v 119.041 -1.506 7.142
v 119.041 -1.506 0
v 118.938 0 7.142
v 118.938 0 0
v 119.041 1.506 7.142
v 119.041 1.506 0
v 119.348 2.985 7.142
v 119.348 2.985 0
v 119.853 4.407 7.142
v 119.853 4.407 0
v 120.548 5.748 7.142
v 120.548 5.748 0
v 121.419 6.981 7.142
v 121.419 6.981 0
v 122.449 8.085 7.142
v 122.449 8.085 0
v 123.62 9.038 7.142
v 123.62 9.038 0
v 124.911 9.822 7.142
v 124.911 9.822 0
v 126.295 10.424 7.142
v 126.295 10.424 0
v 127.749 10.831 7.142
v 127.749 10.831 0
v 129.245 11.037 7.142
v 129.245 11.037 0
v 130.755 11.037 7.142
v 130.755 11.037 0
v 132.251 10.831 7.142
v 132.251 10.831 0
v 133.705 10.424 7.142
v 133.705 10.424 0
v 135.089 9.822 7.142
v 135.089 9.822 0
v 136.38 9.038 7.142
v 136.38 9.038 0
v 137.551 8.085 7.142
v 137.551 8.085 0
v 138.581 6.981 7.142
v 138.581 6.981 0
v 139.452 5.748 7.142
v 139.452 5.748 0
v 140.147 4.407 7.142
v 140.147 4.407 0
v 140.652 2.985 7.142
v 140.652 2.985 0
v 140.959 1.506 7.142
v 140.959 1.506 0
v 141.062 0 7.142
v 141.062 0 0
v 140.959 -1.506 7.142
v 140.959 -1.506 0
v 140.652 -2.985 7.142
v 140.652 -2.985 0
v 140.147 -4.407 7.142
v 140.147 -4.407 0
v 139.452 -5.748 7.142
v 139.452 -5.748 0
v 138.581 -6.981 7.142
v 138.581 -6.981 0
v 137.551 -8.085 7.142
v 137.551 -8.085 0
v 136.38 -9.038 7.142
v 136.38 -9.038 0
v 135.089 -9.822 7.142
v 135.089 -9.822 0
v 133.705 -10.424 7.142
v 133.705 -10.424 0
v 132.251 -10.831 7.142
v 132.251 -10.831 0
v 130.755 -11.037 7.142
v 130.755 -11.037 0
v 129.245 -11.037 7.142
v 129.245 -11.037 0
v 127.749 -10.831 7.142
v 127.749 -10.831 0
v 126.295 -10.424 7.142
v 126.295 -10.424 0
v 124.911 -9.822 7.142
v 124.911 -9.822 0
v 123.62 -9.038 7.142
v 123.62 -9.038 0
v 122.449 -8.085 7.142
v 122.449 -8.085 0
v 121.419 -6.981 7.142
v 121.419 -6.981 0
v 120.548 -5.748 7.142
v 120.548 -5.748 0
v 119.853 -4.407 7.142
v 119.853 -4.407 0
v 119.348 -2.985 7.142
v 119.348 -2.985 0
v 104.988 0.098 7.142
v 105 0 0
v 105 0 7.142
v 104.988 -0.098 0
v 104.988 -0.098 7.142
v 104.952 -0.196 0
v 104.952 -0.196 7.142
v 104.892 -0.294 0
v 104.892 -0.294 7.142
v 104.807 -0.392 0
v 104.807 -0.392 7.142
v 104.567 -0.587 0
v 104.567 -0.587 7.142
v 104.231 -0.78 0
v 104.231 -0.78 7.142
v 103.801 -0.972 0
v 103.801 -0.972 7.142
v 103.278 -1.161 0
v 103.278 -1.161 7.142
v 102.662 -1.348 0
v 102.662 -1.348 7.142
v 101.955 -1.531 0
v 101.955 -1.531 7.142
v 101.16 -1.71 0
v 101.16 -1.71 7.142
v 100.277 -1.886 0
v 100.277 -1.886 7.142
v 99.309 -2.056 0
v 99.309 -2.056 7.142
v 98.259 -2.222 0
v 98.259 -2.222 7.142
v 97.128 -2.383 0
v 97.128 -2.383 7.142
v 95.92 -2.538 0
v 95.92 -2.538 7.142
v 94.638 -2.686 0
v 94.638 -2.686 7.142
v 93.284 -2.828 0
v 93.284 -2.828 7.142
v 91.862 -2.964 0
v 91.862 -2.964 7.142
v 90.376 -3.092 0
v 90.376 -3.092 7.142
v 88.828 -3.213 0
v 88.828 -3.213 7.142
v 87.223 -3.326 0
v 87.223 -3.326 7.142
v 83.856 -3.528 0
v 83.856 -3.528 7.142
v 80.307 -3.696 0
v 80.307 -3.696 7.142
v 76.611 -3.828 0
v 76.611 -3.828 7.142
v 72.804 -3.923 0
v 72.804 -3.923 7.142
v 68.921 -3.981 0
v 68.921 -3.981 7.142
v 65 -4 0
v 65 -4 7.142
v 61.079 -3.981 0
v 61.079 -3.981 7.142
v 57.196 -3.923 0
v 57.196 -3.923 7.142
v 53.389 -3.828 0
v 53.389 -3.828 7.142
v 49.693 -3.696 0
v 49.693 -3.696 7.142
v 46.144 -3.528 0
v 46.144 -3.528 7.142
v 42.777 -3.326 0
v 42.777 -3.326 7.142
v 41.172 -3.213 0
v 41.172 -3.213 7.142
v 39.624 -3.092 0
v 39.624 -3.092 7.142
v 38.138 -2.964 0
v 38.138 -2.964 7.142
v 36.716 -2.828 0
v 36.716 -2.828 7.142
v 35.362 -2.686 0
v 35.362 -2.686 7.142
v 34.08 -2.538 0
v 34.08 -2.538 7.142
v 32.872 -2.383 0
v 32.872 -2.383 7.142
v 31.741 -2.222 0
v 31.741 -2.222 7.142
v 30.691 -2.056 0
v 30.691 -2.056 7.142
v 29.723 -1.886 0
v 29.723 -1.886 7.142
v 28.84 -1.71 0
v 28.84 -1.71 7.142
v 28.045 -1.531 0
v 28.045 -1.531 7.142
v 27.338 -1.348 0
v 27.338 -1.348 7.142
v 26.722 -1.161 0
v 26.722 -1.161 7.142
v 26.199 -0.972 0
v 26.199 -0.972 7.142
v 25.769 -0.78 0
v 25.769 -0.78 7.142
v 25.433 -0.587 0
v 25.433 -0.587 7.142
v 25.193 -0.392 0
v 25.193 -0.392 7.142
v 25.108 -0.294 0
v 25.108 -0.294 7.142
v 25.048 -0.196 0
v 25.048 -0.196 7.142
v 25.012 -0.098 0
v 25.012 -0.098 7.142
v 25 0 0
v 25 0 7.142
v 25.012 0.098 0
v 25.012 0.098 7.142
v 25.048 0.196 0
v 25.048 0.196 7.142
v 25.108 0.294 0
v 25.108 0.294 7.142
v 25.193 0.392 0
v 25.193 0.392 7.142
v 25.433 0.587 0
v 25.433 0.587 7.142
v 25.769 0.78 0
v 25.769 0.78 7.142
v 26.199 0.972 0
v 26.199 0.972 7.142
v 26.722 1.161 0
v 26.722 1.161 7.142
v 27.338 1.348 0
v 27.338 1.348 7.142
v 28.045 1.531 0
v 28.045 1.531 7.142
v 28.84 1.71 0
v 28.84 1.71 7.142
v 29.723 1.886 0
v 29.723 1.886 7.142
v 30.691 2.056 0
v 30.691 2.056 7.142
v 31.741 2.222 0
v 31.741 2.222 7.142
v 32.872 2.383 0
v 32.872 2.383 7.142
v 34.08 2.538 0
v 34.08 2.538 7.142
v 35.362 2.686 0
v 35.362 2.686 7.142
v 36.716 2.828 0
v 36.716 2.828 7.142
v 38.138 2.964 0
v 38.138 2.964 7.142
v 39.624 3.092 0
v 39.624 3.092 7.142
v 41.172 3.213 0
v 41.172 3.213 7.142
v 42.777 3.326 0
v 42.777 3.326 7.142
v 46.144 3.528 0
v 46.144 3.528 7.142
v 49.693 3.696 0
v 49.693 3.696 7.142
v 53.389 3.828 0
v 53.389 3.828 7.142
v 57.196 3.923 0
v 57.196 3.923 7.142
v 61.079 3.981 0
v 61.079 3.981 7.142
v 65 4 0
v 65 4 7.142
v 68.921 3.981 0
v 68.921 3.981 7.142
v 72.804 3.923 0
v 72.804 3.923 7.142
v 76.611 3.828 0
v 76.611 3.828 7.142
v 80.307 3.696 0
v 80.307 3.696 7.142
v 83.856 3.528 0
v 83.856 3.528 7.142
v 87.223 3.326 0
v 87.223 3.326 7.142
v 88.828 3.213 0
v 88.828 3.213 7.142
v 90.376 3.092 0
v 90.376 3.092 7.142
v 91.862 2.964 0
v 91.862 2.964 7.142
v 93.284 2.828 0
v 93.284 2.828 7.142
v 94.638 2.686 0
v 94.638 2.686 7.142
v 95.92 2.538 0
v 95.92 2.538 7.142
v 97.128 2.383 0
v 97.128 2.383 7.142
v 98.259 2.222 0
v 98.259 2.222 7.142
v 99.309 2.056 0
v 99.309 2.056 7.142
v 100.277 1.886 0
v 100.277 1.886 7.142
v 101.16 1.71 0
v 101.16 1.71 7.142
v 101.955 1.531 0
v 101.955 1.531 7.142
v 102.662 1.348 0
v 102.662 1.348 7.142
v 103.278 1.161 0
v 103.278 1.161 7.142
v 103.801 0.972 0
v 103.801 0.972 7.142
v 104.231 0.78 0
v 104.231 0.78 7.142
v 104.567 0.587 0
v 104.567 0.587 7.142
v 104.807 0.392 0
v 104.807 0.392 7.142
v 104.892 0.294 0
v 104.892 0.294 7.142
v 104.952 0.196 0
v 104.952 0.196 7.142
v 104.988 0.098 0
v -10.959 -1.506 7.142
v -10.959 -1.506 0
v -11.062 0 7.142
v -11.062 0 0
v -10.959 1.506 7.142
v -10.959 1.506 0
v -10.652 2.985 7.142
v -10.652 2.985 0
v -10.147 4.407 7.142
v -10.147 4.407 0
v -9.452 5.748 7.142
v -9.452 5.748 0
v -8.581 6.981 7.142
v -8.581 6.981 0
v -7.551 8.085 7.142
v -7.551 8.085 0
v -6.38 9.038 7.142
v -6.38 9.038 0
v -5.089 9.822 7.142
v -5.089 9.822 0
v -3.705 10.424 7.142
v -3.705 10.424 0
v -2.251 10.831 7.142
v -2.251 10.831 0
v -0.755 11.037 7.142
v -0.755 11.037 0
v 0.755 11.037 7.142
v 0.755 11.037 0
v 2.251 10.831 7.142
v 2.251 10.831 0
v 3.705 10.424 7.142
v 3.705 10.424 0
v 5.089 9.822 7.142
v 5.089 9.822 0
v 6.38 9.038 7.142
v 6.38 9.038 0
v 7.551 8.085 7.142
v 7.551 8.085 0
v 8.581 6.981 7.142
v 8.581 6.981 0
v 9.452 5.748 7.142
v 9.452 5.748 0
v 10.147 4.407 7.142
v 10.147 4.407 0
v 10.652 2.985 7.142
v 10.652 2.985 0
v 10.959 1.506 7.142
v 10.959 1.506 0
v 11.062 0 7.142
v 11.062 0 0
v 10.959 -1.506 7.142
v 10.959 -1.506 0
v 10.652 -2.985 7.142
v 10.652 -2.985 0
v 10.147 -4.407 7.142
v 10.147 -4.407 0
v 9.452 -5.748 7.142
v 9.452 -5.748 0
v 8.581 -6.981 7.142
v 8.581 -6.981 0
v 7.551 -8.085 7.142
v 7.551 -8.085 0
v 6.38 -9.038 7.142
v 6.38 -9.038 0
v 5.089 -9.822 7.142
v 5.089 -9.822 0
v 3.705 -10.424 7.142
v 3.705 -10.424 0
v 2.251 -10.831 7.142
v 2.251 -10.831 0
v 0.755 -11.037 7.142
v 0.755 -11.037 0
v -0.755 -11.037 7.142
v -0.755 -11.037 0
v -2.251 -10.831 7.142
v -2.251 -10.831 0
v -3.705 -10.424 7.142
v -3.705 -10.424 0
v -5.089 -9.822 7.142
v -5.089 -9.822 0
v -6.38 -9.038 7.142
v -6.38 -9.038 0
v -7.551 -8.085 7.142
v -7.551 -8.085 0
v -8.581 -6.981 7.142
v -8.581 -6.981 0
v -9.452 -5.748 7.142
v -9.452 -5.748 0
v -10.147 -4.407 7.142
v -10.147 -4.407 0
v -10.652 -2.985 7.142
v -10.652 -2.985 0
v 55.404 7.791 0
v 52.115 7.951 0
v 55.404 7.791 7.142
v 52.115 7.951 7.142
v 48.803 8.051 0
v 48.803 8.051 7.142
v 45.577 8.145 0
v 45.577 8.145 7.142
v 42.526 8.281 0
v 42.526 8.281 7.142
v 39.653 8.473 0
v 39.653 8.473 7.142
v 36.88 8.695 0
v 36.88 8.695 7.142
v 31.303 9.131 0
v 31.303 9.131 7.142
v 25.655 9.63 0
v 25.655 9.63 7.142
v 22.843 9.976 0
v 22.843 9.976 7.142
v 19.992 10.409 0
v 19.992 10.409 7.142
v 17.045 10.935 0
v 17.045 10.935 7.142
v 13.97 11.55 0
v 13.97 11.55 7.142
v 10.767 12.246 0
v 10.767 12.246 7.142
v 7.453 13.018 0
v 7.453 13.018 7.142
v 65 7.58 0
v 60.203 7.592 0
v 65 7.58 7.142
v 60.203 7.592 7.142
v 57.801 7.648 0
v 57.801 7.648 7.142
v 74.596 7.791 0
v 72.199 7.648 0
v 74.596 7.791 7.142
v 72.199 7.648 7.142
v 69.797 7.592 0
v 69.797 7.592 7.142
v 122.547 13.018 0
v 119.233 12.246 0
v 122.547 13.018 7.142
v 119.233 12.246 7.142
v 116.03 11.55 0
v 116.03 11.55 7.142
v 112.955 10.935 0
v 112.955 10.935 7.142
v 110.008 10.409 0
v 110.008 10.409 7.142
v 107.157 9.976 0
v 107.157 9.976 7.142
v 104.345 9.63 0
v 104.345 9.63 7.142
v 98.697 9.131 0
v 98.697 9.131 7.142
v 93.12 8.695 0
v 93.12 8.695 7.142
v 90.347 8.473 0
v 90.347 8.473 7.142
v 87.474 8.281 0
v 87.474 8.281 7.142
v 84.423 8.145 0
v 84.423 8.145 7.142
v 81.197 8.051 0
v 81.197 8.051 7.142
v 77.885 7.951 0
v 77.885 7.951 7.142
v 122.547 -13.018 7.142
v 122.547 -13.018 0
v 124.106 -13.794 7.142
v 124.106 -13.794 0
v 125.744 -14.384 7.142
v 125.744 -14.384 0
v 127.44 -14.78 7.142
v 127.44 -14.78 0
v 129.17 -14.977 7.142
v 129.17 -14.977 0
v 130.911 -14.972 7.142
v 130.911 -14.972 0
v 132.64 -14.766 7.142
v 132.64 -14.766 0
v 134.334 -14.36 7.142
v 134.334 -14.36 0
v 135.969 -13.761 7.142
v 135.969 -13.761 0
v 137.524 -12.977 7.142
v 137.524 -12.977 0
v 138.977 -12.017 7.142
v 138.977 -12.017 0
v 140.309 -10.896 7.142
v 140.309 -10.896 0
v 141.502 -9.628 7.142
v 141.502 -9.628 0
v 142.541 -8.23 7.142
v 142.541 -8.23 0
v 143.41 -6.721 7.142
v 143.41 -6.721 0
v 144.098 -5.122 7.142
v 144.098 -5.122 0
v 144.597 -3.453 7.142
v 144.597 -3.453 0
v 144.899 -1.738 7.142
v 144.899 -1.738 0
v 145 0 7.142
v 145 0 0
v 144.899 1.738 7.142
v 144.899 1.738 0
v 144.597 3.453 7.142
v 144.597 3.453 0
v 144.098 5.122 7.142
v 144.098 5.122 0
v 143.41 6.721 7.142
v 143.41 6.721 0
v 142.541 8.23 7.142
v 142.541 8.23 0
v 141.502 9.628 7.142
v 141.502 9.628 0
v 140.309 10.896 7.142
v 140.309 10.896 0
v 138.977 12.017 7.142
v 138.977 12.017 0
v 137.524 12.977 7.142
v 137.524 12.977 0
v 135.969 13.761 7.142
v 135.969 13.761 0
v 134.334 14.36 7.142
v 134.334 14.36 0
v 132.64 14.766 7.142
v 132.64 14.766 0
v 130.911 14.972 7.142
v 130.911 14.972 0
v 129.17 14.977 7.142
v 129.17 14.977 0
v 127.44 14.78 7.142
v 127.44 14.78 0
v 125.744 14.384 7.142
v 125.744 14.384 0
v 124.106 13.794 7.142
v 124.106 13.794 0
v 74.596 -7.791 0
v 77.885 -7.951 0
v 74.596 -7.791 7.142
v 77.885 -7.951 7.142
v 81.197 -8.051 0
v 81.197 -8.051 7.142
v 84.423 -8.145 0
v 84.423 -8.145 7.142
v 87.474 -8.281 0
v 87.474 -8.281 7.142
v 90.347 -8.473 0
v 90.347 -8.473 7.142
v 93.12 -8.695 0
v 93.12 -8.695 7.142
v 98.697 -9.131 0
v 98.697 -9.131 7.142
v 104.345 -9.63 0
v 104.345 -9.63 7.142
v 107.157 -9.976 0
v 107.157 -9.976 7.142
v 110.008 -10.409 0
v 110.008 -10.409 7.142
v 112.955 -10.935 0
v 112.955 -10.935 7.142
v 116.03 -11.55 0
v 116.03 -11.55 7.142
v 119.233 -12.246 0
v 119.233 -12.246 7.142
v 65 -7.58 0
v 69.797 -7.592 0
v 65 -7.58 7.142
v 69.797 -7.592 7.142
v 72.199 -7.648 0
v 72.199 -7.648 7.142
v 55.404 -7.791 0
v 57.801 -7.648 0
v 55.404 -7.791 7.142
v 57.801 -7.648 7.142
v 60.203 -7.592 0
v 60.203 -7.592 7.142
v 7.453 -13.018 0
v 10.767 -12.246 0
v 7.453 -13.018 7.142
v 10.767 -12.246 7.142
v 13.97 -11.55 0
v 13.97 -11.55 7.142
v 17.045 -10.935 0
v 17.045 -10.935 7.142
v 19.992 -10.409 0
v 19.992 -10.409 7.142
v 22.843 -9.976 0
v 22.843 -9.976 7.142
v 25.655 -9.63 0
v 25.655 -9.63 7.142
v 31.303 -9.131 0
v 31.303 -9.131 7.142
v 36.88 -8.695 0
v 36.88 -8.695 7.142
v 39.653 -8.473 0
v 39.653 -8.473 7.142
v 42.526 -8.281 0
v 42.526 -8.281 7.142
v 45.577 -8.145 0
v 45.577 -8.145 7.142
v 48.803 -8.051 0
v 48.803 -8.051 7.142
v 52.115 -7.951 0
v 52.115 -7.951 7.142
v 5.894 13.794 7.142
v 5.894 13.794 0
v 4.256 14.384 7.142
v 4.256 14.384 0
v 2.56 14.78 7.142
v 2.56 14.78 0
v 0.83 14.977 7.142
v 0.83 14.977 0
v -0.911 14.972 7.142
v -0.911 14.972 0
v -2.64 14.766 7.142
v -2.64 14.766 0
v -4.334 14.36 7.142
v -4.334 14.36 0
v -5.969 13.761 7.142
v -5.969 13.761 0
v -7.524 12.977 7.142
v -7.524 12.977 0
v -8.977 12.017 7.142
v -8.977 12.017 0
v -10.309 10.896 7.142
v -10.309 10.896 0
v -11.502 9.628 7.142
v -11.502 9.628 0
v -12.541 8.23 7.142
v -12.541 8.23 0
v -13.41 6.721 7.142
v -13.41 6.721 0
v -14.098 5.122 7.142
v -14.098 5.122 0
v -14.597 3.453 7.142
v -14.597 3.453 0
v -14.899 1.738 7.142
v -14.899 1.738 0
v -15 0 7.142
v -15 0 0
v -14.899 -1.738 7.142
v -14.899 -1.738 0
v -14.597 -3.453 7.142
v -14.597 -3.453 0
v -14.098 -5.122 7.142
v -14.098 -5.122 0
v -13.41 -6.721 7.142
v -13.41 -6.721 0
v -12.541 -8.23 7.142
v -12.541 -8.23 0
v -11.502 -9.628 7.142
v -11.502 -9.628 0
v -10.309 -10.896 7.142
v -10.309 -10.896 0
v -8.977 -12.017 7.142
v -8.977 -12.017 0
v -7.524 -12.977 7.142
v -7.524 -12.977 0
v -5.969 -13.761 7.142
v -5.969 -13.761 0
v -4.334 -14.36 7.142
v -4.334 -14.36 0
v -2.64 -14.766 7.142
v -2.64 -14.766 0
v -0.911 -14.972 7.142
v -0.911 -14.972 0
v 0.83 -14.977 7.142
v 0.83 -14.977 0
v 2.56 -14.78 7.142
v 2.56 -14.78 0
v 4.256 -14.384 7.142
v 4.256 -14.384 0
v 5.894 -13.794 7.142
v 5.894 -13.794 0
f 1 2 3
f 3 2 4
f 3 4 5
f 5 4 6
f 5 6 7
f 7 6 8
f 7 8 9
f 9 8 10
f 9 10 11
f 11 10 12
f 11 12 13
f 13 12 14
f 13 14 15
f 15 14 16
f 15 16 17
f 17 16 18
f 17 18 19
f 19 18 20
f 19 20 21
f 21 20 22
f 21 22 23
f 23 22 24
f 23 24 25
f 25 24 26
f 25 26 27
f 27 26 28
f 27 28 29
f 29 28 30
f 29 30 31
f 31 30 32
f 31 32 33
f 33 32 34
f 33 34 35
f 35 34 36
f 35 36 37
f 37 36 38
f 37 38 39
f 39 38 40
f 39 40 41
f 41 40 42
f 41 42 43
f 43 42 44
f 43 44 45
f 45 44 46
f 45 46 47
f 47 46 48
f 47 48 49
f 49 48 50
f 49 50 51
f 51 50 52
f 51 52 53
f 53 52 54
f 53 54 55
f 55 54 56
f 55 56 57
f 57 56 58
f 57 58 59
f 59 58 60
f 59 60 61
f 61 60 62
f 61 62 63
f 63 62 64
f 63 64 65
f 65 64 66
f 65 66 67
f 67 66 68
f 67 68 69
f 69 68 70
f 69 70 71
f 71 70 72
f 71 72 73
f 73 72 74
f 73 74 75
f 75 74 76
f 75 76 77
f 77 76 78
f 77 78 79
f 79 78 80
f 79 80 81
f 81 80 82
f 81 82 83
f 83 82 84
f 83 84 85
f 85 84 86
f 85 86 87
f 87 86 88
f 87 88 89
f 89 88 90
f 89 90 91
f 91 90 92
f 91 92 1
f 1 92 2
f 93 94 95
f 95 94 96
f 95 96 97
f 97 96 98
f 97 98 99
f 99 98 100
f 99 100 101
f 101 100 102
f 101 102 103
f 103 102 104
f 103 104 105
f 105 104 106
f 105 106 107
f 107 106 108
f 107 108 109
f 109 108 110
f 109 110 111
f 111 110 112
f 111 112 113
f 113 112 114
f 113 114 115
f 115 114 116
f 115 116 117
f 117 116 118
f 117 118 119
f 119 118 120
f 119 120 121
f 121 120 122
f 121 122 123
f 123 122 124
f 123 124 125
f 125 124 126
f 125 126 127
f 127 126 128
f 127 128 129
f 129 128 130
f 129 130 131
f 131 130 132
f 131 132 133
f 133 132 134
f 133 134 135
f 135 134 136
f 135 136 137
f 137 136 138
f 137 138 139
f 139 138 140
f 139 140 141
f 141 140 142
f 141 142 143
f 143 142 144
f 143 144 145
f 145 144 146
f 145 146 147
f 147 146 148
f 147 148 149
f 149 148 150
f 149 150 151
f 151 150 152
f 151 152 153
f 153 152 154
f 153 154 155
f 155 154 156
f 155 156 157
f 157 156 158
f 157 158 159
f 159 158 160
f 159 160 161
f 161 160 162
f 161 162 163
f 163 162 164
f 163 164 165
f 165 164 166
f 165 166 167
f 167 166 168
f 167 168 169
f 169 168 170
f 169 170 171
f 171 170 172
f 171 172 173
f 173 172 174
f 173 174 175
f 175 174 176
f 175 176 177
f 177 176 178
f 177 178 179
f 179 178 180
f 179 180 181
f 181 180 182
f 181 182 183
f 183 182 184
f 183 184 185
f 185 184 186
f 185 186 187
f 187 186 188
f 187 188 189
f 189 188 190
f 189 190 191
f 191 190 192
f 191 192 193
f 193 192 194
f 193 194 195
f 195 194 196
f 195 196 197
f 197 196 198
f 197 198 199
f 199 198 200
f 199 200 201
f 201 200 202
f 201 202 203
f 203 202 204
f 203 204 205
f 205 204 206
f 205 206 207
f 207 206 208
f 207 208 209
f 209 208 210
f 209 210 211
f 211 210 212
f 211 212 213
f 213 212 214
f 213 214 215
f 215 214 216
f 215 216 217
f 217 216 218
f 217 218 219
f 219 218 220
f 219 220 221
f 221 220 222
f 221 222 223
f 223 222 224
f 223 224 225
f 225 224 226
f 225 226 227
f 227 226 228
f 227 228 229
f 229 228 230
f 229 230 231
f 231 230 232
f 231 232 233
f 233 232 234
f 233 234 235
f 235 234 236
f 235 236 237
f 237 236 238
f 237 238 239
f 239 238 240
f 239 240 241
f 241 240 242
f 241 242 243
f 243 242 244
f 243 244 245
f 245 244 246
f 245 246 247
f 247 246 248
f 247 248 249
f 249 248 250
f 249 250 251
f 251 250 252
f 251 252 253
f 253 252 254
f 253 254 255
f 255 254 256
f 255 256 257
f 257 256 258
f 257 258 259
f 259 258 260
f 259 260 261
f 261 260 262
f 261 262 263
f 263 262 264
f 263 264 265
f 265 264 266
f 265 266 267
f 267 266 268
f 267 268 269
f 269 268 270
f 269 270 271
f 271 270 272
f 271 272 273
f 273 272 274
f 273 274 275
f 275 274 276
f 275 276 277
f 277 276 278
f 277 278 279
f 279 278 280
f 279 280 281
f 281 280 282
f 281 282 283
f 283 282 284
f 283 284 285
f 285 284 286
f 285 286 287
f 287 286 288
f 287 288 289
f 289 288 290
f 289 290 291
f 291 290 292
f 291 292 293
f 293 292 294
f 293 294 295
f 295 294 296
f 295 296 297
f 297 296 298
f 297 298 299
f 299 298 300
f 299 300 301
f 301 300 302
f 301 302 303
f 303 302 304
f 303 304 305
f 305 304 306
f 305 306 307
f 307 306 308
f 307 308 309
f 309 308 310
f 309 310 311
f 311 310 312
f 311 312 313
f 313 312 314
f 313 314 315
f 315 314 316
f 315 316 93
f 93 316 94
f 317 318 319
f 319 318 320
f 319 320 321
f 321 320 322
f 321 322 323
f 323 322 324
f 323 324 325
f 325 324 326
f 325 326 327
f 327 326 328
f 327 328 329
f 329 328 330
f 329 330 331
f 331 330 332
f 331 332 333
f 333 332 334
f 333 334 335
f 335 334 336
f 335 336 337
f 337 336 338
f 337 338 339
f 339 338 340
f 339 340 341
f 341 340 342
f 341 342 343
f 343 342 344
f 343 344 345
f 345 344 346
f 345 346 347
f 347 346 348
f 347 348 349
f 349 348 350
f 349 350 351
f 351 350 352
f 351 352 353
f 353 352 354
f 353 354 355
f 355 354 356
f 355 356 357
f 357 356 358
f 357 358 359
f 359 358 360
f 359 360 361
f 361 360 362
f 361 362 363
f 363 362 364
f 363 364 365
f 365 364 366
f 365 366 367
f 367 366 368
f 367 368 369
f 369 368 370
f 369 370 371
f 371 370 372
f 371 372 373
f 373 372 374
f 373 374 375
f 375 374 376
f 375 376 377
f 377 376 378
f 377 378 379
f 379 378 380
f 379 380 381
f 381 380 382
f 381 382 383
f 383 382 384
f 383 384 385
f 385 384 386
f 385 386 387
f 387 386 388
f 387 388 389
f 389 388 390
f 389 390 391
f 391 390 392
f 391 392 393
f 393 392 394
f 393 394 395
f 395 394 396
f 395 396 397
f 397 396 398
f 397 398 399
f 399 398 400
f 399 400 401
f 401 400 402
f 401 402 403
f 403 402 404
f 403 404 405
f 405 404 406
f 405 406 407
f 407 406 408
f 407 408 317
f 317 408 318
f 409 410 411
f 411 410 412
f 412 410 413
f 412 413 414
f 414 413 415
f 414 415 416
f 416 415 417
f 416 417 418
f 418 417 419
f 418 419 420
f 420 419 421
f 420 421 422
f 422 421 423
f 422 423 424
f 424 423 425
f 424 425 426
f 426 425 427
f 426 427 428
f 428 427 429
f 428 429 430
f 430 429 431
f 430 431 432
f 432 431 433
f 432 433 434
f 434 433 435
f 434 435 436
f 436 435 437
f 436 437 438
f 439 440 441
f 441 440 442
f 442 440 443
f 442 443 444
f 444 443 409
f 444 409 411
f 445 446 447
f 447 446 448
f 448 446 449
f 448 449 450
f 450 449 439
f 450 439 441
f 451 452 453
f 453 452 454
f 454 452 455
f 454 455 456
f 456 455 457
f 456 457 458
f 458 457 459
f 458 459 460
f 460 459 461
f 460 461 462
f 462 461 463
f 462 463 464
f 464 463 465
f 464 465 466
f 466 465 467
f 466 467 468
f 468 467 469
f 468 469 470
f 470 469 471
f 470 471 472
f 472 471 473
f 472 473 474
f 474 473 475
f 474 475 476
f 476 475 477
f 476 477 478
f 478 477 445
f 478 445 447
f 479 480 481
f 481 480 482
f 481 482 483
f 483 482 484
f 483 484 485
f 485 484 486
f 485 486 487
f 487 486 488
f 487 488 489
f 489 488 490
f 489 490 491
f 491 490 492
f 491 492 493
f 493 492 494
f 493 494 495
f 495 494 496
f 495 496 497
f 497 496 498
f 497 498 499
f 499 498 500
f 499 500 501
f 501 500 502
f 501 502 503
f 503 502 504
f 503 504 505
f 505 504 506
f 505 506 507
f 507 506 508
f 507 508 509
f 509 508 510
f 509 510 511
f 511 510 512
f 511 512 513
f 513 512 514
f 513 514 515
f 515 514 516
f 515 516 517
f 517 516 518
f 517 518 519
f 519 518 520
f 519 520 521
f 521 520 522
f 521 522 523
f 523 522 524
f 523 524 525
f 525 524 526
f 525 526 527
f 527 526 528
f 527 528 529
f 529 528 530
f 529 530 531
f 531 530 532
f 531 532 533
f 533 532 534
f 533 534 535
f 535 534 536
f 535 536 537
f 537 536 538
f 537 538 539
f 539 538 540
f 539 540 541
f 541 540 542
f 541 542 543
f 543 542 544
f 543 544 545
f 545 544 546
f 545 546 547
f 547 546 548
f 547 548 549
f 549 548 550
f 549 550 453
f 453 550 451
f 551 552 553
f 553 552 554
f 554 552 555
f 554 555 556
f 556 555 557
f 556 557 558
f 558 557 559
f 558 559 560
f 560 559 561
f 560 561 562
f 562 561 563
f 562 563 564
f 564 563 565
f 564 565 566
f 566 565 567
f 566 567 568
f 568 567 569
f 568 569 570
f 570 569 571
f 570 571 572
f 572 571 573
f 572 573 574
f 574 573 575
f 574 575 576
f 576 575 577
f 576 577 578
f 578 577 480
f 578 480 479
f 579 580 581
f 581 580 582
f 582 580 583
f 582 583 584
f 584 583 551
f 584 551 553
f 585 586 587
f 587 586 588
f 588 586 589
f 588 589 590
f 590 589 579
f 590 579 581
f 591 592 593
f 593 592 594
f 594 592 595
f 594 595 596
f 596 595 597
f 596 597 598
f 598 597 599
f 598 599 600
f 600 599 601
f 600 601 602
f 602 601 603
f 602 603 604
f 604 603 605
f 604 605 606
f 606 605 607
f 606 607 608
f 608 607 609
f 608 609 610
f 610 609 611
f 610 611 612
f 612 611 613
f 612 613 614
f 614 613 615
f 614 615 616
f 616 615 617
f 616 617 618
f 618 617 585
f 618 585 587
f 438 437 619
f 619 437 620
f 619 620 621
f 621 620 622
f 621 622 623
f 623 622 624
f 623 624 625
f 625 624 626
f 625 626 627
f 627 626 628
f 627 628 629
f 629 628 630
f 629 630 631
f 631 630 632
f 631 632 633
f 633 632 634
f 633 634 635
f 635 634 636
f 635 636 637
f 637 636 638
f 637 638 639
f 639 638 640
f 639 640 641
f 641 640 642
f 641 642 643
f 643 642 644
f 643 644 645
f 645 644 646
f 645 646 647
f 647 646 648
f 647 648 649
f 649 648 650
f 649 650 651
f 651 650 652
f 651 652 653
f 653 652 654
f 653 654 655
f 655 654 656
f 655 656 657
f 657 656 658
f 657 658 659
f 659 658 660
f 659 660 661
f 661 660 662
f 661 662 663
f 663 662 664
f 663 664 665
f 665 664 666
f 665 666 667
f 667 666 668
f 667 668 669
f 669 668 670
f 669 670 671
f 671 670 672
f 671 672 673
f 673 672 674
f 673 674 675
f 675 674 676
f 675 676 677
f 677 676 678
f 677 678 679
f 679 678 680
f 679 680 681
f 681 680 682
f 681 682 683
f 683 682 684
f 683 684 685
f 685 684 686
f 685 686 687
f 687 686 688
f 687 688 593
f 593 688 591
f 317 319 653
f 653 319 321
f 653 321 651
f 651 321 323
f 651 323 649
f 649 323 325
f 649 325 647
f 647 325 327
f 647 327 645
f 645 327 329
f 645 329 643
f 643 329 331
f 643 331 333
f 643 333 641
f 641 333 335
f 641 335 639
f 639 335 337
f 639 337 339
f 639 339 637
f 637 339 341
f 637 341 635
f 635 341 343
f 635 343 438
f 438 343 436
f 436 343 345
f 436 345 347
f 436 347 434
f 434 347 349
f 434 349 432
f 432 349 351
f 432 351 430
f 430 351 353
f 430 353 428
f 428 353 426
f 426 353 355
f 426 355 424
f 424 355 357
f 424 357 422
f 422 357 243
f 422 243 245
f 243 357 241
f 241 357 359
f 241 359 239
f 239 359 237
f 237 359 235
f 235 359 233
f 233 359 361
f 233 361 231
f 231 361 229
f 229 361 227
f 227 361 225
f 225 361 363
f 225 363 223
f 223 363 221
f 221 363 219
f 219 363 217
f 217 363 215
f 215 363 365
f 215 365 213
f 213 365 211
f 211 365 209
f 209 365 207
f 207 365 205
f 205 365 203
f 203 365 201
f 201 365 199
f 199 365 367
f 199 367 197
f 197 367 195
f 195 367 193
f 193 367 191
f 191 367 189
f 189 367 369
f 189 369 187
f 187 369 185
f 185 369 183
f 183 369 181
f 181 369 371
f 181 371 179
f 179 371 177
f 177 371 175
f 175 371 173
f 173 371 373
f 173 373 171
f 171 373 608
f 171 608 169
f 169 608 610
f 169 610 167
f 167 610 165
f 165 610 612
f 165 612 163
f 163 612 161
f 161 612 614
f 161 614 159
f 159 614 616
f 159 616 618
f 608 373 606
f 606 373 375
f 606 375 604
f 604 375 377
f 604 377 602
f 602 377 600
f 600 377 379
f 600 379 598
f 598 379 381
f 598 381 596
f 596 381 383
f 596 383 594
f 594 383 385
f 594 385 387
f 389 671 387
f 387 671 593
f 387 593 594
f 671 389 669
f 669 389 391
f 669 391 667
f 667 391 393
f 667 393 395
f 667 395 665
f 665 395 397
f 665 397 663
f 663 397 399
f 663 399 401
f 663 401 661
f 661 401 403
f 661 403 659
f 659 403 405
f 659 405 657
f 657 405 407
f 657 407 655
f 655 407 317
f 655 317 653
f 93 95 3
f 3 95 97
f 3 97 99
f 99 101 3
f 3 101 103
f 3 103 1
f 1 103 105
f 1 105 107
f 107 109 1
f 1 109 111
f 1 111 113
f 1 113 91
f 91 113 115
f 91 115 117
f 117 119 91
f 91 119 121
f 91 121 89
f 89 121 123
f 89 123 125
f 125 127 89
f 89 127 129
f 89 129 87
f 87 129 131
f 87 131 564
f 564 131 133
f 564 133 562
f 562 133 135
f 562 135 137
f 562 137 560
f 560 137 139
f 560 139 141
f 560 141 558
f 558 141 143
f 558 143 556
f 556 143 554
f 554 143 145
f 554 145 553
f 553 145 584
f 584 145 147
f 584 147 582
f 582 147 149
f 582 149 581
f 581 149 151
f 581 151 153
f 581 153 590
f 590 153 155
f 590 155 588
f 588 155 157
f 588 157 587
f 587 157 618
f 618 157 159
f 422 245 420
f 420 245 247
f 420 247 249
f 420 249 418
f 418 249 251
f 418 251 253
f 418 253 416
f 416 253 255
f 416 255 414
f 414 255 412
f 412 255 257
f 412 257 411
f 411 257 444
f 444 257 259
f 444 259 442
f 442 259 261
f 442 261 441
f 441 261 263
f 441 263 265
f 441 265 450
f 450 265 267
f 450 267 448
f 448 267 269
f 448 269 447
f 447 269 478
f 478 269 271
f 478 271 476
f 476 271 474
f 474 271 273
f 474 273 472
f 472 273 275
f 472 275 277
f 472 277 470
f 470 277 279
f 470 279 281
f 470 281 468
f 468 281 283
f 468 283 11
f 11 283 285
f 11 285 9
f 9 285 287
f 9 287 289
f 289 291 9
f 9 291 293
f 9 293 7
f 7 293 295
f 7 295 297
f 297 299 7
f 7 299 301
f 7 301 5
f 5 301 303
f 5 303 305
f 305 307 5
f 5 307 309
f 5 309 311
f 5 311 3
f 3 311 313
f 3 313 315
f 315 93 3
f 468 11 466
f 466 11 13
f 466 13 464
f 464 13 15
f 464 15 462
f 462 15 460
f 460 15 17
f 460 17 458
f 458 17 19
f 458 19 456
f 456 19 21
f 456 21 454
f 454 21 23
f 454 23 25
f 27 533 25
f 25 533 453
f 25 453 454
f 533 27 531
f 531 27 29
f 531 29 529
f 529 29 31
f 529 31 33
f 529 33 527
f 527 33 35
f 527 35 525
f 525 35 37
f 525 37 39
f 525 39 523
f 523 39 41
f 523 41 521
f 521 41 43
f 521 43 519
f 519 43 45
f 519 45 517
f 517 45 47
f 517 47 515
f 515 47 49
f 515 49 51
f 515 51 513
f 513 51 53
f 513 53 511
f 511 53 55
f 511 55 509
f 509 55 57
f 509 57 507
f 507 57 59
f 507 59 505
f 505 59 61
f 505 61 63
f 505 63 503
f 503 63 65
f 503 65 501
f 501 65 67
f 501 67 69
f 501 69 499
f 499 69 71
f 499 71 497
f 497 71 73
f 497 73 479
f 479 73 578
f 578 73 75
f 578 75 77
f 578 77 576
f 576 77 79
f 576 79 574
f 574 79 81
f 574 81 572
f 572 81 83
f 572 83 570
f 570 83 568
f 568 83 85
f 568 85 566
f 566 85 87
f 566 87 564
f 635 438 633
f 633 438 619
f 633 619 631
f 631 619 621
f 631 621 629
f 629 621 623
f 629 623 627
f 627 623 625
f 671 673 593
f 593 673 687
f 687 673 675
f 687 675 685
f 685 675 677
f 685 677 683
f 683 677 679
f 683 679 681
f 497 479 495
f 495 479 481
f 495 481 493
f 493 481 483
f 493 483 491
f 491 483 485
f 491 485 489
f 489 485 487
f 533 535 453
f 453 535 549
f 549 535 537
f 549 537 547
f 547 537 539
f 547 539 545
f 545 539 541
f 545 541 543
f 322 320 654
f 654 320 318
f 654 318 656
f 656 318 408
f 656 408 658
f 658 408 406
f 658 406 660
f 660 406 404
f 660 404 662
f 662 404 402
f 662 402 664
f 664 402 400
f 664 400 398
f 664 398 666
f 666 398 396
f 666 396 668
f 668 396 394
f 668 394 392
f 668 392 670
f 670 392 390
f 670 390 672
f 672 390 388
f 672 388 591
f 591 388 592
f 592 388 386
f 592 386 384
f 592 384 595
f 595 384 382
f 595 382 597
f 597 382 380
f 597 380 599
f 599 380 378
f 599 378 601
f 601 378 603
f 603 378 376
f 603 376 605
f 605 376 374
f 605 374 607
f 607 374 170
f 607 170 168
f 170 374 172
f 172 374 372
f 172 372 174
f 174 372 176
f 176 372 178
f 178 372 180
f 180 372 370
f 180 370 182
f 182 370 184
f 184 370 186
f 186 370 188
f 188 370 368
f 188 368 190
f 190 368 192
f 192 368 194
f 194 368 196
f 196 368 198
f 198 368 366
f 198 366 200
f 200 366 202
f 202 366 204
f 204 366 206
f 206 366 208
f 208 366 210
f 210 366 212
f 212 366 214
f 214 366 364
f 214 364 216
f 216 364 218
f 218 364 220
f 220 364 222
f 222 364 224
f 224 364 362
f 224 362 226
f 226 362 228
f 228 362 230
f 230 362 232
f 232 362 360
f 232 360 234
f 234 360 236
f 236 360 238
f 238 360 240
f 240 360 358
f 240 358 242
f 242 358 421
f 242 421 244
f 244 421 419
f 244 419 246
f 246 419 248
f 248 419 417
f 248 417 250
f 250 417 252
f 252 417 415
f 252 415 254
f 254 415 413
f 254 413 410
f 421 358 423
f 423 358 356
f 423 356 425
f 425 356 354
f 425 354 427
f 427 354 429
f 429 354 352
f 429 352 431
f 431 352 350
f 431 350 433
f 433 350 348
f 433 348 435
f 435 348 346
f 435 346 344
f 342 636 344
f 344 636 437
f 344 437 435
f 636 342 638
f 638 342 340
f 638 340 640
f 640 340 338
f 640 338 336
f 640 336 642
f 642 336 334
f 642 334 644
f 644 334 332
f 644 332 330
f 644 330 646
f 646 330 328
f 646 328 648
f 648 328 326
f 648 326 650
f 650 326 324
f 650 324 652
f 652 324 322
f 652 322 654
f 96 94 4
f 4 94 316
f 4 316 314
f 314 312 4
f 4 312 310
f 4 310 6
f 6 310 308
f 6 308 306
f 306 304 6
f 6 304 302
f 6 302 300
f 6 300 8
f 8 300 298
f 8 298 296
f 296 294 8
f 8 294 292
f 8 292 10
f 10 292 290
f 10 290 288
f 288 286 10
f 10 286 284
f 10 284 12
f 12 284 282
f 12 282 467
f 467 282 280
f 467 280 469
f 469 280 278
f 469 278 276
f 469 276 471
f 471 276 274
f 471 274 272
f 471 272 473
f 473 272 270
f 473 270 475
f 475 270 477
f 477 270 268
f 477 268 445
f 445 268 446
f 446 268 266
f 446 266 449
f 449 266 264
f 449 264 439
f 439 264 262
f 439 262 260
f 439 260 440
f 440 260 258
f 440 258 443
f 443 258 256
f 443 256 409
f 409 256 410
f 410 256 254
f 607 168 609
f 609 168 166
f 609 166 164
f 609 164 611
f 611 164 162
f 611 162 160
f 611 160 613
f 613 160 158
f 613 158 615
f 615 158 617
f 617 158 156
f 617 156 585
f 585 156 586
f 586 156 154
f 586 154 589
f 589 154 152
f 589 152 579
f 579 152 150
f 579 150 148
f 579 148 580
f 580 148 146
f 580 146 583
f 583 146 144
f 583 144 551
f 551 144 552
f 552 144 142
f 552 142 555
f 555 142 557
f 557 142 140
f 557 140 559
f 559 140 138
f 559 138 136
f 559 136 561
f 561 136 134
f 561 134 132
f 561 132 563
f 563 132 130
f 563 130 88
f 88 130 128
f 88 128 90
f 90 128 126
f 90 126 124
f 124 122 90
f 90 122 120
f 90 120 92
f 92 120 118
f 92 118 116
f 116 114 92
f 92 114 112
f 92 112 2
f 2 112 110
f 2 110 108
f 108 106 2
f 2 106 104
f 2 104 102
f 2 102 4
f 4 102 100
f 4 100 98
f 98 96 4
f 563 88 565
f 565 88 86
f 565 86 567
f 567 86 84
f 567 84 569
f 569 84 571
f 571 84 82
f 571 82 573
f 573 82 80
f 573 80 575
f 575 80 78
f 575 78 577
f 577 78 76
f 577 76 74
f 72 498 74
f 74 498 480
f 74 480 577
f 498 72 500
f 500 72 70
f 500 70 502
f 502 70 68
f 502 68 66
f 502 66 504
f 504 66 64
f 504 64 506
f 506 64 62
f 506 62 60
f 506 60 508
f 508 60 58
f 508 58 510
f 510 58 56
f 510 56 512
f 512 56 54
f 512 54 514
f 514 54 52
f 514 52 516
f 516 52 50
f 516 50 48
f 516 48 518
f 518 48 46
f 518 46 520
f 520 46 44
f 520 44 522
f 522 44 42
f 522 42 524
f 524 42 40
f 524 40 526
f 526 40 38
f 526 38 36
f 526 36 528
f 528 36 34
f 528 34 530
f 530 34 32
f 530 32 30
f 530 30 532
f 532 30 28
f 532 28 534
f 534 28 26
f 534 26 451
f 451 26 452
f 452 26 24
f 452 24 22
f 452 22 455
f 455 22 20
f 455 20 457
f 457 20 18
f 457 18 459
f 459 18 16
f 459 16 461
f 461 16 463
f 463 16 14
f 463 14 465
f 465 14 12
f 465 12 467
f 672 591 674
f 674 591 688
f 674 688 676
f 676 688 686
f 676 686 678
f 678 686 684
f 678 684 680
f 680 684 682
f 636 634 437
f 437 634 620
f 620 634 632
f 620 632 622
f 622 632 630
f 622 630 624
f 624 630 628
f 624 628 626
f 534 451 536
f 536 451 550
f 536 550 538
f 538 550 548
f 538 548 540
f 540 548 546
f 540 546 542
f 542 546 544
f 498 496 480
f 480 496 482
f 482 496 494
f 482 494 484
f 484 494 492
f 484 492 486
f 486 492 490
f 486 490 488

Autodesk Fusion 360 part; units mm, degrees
sketch "Sketch1" plane through (0, 0, 0) normal (0, 0, 1) x (1, 0, 0)
  circle A0 centre (0, 0) radius 11.0625
  circle A1 centre (0, 0) radius 15
  line L0 (0, 0) -> (130, 0)
  circle A2 centre (130, 0) radius 11.0625
  circle A3 centre (130, 0) radius 15
  line L1 (0, 0) -> (65, 0)
  spline S0 degree 5 poles (7.4528, 13.0175) (7.8836, 12.9141) (8.7411, 12.7102) (10.015, 12.4132) (11.688, 12.0352) (13.7317, 11.594) (15.7226, 11.1861) (17.6579, 10.8135) (19.5392, 10.4779) (21.3761, 10.1803) (23.1841, 9.9205) (24.9799, 9.6971) (26.7778, 9.5065) (28.5855, 9.3432) (30.3994, 9.1985) (32.2092, 9.0627) (34.0044, 8.9273) (35.7794, 8.7866) (37.5401, 8.6406) (39.3083, 8.496) (41.1126, 8.3625) (42.9802, 8.2492) (44.9302, 8.1618) (46.9629, 8.0975) (49.0581, 8.0448) (51.1857, 7.988) (52.8875, 7.9263) (54.152, 7.865) (54.9881, 7.8168) (55.4044, 7.7909) knots 0 0 0 0 0 0 0.04 0.08 0.12 0.16 0.2 0.24 0.28 0.32 0.36 0.4 0.44 0.48 0.52 0.56 0.6 0.64 0.68 0.72 0.76 0.8 0.84 0.88 0.92 0.96 1 1 1 1 1 1
  line L2 (65, 0) -> (65, 43.1808)
  spline S1 degree 5 poles (55.4044, 7.7909) (55.7874, 7.7593) (56.5538, 7.7035) (57.7049, 7.642) (59.2419, 7.5975) (61.1644, 7.58) (62.701, 7.5793) (63.8515, 7.5799) (64.6173, 7.5801) (65, 7.5801) knots 0 0 0 0 0 0 0.2 0.4 0.6 0.8 1 1 1 1 1 1
  spline S2 degree 5 poles (122.5472, 13.0175) (122.1164, 12.9141) (121.2589, 12.7102) (119.985, 12.4132) (118.312, 12.0352) (116.2683, 11.594) (114.2774, 11.1861) (112.3421, 10.8135) (110.4608, 10.4779) (108.6239, 10.1803) (106.8159, 9.9205) (105.0201, 9.6971) (103.2222, 9.5065) (101.4145, 9.3432) (99.6006, 9.1985) (97.7908, 9.0627) (95.9956, 8.9273) (94.2206, 8.7866) (92.4599, 8.6406) (90.6917, 8.496) (88.8874, 8.3625) (87.0198, 8.2492) (85.0698, 8.1618) (83.0371, 8.0975) (80.9419, 8.0448) (78.8143, 7.988) (77.1125, 7.9263) (75.848, 7.865) (75.0119, 7.8168) (74.5956, 7.7909) knots 0 0 0 0 0 0 0.04 0.08 0.12 0.16 0.2 0.24 0.28 0.32 0.36 0.4 0.44 0.48 0.52 0.56 0.6 0.64 0.68 0.72 0.76 0.8 0.84 0.88 0.92 0.96 1 1 1 1 1 1
  line L3 (2.3089, 14.2524) -> (12.5967, 11.7826)
  line L4 (50.4549, 8.0994) -> (60.354, 7.4823)
  line L5 (127.6911, 14.2524) -> (117.4033, 11.7826)
  line L6 (79.5451, 8.0994) -> (69.646, 7.4823)
  spline S3 degree 5 poles (74.5956, 7.7909) (74.2126, 7.7593) (73.4462, 7.7035) (72.2951, 7.642) (70.7581, 7.5975) (68.8356, 7.58) (67.299, 7.5793) (66.1485, 7.5799) (65.3827, 7.5801) (65, 7.5801) knots 0 0 0 0 0 0 0.2 0.4 0.6 0.8 1 1 1 1 1 1
  line L7 (54.4257, 7.8715) -> (56.3832, 7.7102)
  line L8 (64.0213, 7.5801) -> (65.9787, 7.5801)
  line L9 (75.5743, 7.8715) -> (73.6168, 7.7102)
  line L10 (65.9787, 7.5801) -> (64.0213, 7.5801)
  spline S4 degree 5 poles (122.5472, -13.0175) (122.1164, -12.9141) (121.2589, -12.7102) (119.985, -12.4132) (118.312, -12.0352) (116.2683, -11.594) (114.2774, -11.1861) (112.3421, -10.8135) (110.4608, -10.4779) (108.6239, -10.1803) (106.8159, -9.9205) (105.0201, -9.6971) (103.2222, -9.5065) (101.4145, -9.3432) (99.6006, -9.1985) (97.7908, -9.0627) (95.9956, -8.9273) (94.2206, -8.7866) (92.4599, -8.6406) (90.6917, -8.496) (88.8874, -8.3625) (87.0198, -8.2492) (85.0698, -8.1618) (83.0371, -8.0975) (80.9419, -8.0448) (78.8143, -7.988) (77.1125, -7.9263) (75.848, -7.865) (75.0119, -7.8168) (74.5956, -7.7909) knots 0 0 0 0 0 0 0.04 0.08 0.12 0.16 0.2 0.24 0.28 0.32 0.36 0.4 0.44 0.48 0.52 0.56 0.6 0.64 0.68 0.72 0.76 0.8 0.84 0.88 0.92 0.96 1 1 1 1 1 1
  line L11 (127.6911, -14.2524) -> (117.4033, -11.7826)
  line L12 (79.5451, -8.0994) -> (69.646, -7.4823)
  spline S5 degree 5 poles (74.5956, -7.7909) (74.2126, -7.7593) (73.4462, -7.7035) (72.2951, -7.642) (70.7581, -7.5975) (68.8356, -7.58) (67.299, -7.5793) (66.1485, -7.5799) (65.3827, -7.5801) (65, -7.5801) knots 0 0 0 0 0 0 0.2 0.4 0.6 0.8 1 1 1 1 1 1
  line L13 (75.5743, -7.8715) -> (73.6168, -7.7102)
  line L14 (65.9787, -7.5801) -> (64.0213, -7.5801)
  spline S6 degree 5 poles (55.4044, -7.7909) (55.7874, -7.7593) (56.5538, -7.7035) (57.7049, -7.642) (59.2419, -7.5975) (61.1644, -7.58) (62.701, -7.5793) (63.8515, -7.5799) (64.6173, -7.5801) (65, -7.5801) knots 0 0 0 0 0 0 0.2 0.4 0.6 0.8 1 1 1 1 1 1
  line L15 (54.4257, -7.8715) -> (56.3832, -7.7102)
  line L16 (64.0213, -7.5801) -> (65.9787, -7.5801)
  spline S7 degree 5 poles (7.4528, -13.0175) (7.8836, -12.9141) (8.7411, -12.7102) (10.015, -12.4132) (11.688, -12.0352) (13.7317, -11.594) (15.7226, -11.1861) (17.6579, -10.8135) (19.5392, -10.4779) (21.3761, -10.1803) (23.1841, -9.9205) (24.9799, -9.6971) (26.7778, -9.5065) (28.5855, -9.3432) (30.3994, -9.1985) (32.2092, -9.0627) (34.0044, -8.9273) (35.7794, -8.7866) (37.5401, -8.6406) (39.3083, -8.496) (41.1126, -8.3625) (42.9802, -8.2492) (44.9302, -8.1618) (46.9629, -8.0975) (49.0581, -8.0448) (51.1857, -7.988) (52.8875, -7.9263) (54.152, -7.865) (54.9881, -7.8168) (55.4044, -7.7909) knots 0 0 0 0 0 0 0.04 0.08 0.12 0.16 0.2 0.24 0.28 0.32 0.36 0.4 0.44 0.48 0.52 0.56 0.6 0.64 0.68 0.72 0.76 0.8 0.84 0.88 0.92 0.96 1 1 1 1 1 1
  line L17 (2.3089, -14.2524) -> (12.5967, -11.7826)
  line L18 (50.4549, -8.0994) -> (60.354, -7.4823)
  ellipse E0 centre (65, 0) end of major axis (25, 0) minor radius 4
  line L19 (105, 0) -> (25, 0) construction
  line L20 (65, 4) -> (65, -4) construction
  point P0 (18.3178, 10.6996)
  point P1 (27.044, 9.4876)
  point P2 (35.5289, 8.8053)
  point P3 (44.207, 8.1979)
  point P4 (111.6822, 10.6996)
  point P5 (102.956, 9.4876)
  point P6 (94.4711, 8.8053)
  point P7 (85.793, 8.1979)
  point P8 (111.6822, -10.6996)
  point P9 (102.956, -9.4876)
  point P10 (94.4711, -8.8053)
  point P11 (85.793, -8.1979)
  point P12 (18.3178, -10.6996)
  point P13 (27.044, -9.4876)
  point P14 (35.5289, -8.8053)
  point P15 (44.207, -8.1979)
  dimension "d1" = 22.125
  dimension "d2" = 30
  dimension "d3" = 130
  dimension "d4" = 22.125
  dimension "d5" = 30
  dimension "d6" = 65
extrude "Extrude1" add sketch "Sketch1" along normal blind 7.142 contours A1 | A1 L0 L1 S0 L2 S1 L8 L10 E0 | A1 L0 A3 L1 S4 S5 L14 S6 L16 S7 E0 | L0 A3 L2 S2 S3 L8 L10 E0 | A3
